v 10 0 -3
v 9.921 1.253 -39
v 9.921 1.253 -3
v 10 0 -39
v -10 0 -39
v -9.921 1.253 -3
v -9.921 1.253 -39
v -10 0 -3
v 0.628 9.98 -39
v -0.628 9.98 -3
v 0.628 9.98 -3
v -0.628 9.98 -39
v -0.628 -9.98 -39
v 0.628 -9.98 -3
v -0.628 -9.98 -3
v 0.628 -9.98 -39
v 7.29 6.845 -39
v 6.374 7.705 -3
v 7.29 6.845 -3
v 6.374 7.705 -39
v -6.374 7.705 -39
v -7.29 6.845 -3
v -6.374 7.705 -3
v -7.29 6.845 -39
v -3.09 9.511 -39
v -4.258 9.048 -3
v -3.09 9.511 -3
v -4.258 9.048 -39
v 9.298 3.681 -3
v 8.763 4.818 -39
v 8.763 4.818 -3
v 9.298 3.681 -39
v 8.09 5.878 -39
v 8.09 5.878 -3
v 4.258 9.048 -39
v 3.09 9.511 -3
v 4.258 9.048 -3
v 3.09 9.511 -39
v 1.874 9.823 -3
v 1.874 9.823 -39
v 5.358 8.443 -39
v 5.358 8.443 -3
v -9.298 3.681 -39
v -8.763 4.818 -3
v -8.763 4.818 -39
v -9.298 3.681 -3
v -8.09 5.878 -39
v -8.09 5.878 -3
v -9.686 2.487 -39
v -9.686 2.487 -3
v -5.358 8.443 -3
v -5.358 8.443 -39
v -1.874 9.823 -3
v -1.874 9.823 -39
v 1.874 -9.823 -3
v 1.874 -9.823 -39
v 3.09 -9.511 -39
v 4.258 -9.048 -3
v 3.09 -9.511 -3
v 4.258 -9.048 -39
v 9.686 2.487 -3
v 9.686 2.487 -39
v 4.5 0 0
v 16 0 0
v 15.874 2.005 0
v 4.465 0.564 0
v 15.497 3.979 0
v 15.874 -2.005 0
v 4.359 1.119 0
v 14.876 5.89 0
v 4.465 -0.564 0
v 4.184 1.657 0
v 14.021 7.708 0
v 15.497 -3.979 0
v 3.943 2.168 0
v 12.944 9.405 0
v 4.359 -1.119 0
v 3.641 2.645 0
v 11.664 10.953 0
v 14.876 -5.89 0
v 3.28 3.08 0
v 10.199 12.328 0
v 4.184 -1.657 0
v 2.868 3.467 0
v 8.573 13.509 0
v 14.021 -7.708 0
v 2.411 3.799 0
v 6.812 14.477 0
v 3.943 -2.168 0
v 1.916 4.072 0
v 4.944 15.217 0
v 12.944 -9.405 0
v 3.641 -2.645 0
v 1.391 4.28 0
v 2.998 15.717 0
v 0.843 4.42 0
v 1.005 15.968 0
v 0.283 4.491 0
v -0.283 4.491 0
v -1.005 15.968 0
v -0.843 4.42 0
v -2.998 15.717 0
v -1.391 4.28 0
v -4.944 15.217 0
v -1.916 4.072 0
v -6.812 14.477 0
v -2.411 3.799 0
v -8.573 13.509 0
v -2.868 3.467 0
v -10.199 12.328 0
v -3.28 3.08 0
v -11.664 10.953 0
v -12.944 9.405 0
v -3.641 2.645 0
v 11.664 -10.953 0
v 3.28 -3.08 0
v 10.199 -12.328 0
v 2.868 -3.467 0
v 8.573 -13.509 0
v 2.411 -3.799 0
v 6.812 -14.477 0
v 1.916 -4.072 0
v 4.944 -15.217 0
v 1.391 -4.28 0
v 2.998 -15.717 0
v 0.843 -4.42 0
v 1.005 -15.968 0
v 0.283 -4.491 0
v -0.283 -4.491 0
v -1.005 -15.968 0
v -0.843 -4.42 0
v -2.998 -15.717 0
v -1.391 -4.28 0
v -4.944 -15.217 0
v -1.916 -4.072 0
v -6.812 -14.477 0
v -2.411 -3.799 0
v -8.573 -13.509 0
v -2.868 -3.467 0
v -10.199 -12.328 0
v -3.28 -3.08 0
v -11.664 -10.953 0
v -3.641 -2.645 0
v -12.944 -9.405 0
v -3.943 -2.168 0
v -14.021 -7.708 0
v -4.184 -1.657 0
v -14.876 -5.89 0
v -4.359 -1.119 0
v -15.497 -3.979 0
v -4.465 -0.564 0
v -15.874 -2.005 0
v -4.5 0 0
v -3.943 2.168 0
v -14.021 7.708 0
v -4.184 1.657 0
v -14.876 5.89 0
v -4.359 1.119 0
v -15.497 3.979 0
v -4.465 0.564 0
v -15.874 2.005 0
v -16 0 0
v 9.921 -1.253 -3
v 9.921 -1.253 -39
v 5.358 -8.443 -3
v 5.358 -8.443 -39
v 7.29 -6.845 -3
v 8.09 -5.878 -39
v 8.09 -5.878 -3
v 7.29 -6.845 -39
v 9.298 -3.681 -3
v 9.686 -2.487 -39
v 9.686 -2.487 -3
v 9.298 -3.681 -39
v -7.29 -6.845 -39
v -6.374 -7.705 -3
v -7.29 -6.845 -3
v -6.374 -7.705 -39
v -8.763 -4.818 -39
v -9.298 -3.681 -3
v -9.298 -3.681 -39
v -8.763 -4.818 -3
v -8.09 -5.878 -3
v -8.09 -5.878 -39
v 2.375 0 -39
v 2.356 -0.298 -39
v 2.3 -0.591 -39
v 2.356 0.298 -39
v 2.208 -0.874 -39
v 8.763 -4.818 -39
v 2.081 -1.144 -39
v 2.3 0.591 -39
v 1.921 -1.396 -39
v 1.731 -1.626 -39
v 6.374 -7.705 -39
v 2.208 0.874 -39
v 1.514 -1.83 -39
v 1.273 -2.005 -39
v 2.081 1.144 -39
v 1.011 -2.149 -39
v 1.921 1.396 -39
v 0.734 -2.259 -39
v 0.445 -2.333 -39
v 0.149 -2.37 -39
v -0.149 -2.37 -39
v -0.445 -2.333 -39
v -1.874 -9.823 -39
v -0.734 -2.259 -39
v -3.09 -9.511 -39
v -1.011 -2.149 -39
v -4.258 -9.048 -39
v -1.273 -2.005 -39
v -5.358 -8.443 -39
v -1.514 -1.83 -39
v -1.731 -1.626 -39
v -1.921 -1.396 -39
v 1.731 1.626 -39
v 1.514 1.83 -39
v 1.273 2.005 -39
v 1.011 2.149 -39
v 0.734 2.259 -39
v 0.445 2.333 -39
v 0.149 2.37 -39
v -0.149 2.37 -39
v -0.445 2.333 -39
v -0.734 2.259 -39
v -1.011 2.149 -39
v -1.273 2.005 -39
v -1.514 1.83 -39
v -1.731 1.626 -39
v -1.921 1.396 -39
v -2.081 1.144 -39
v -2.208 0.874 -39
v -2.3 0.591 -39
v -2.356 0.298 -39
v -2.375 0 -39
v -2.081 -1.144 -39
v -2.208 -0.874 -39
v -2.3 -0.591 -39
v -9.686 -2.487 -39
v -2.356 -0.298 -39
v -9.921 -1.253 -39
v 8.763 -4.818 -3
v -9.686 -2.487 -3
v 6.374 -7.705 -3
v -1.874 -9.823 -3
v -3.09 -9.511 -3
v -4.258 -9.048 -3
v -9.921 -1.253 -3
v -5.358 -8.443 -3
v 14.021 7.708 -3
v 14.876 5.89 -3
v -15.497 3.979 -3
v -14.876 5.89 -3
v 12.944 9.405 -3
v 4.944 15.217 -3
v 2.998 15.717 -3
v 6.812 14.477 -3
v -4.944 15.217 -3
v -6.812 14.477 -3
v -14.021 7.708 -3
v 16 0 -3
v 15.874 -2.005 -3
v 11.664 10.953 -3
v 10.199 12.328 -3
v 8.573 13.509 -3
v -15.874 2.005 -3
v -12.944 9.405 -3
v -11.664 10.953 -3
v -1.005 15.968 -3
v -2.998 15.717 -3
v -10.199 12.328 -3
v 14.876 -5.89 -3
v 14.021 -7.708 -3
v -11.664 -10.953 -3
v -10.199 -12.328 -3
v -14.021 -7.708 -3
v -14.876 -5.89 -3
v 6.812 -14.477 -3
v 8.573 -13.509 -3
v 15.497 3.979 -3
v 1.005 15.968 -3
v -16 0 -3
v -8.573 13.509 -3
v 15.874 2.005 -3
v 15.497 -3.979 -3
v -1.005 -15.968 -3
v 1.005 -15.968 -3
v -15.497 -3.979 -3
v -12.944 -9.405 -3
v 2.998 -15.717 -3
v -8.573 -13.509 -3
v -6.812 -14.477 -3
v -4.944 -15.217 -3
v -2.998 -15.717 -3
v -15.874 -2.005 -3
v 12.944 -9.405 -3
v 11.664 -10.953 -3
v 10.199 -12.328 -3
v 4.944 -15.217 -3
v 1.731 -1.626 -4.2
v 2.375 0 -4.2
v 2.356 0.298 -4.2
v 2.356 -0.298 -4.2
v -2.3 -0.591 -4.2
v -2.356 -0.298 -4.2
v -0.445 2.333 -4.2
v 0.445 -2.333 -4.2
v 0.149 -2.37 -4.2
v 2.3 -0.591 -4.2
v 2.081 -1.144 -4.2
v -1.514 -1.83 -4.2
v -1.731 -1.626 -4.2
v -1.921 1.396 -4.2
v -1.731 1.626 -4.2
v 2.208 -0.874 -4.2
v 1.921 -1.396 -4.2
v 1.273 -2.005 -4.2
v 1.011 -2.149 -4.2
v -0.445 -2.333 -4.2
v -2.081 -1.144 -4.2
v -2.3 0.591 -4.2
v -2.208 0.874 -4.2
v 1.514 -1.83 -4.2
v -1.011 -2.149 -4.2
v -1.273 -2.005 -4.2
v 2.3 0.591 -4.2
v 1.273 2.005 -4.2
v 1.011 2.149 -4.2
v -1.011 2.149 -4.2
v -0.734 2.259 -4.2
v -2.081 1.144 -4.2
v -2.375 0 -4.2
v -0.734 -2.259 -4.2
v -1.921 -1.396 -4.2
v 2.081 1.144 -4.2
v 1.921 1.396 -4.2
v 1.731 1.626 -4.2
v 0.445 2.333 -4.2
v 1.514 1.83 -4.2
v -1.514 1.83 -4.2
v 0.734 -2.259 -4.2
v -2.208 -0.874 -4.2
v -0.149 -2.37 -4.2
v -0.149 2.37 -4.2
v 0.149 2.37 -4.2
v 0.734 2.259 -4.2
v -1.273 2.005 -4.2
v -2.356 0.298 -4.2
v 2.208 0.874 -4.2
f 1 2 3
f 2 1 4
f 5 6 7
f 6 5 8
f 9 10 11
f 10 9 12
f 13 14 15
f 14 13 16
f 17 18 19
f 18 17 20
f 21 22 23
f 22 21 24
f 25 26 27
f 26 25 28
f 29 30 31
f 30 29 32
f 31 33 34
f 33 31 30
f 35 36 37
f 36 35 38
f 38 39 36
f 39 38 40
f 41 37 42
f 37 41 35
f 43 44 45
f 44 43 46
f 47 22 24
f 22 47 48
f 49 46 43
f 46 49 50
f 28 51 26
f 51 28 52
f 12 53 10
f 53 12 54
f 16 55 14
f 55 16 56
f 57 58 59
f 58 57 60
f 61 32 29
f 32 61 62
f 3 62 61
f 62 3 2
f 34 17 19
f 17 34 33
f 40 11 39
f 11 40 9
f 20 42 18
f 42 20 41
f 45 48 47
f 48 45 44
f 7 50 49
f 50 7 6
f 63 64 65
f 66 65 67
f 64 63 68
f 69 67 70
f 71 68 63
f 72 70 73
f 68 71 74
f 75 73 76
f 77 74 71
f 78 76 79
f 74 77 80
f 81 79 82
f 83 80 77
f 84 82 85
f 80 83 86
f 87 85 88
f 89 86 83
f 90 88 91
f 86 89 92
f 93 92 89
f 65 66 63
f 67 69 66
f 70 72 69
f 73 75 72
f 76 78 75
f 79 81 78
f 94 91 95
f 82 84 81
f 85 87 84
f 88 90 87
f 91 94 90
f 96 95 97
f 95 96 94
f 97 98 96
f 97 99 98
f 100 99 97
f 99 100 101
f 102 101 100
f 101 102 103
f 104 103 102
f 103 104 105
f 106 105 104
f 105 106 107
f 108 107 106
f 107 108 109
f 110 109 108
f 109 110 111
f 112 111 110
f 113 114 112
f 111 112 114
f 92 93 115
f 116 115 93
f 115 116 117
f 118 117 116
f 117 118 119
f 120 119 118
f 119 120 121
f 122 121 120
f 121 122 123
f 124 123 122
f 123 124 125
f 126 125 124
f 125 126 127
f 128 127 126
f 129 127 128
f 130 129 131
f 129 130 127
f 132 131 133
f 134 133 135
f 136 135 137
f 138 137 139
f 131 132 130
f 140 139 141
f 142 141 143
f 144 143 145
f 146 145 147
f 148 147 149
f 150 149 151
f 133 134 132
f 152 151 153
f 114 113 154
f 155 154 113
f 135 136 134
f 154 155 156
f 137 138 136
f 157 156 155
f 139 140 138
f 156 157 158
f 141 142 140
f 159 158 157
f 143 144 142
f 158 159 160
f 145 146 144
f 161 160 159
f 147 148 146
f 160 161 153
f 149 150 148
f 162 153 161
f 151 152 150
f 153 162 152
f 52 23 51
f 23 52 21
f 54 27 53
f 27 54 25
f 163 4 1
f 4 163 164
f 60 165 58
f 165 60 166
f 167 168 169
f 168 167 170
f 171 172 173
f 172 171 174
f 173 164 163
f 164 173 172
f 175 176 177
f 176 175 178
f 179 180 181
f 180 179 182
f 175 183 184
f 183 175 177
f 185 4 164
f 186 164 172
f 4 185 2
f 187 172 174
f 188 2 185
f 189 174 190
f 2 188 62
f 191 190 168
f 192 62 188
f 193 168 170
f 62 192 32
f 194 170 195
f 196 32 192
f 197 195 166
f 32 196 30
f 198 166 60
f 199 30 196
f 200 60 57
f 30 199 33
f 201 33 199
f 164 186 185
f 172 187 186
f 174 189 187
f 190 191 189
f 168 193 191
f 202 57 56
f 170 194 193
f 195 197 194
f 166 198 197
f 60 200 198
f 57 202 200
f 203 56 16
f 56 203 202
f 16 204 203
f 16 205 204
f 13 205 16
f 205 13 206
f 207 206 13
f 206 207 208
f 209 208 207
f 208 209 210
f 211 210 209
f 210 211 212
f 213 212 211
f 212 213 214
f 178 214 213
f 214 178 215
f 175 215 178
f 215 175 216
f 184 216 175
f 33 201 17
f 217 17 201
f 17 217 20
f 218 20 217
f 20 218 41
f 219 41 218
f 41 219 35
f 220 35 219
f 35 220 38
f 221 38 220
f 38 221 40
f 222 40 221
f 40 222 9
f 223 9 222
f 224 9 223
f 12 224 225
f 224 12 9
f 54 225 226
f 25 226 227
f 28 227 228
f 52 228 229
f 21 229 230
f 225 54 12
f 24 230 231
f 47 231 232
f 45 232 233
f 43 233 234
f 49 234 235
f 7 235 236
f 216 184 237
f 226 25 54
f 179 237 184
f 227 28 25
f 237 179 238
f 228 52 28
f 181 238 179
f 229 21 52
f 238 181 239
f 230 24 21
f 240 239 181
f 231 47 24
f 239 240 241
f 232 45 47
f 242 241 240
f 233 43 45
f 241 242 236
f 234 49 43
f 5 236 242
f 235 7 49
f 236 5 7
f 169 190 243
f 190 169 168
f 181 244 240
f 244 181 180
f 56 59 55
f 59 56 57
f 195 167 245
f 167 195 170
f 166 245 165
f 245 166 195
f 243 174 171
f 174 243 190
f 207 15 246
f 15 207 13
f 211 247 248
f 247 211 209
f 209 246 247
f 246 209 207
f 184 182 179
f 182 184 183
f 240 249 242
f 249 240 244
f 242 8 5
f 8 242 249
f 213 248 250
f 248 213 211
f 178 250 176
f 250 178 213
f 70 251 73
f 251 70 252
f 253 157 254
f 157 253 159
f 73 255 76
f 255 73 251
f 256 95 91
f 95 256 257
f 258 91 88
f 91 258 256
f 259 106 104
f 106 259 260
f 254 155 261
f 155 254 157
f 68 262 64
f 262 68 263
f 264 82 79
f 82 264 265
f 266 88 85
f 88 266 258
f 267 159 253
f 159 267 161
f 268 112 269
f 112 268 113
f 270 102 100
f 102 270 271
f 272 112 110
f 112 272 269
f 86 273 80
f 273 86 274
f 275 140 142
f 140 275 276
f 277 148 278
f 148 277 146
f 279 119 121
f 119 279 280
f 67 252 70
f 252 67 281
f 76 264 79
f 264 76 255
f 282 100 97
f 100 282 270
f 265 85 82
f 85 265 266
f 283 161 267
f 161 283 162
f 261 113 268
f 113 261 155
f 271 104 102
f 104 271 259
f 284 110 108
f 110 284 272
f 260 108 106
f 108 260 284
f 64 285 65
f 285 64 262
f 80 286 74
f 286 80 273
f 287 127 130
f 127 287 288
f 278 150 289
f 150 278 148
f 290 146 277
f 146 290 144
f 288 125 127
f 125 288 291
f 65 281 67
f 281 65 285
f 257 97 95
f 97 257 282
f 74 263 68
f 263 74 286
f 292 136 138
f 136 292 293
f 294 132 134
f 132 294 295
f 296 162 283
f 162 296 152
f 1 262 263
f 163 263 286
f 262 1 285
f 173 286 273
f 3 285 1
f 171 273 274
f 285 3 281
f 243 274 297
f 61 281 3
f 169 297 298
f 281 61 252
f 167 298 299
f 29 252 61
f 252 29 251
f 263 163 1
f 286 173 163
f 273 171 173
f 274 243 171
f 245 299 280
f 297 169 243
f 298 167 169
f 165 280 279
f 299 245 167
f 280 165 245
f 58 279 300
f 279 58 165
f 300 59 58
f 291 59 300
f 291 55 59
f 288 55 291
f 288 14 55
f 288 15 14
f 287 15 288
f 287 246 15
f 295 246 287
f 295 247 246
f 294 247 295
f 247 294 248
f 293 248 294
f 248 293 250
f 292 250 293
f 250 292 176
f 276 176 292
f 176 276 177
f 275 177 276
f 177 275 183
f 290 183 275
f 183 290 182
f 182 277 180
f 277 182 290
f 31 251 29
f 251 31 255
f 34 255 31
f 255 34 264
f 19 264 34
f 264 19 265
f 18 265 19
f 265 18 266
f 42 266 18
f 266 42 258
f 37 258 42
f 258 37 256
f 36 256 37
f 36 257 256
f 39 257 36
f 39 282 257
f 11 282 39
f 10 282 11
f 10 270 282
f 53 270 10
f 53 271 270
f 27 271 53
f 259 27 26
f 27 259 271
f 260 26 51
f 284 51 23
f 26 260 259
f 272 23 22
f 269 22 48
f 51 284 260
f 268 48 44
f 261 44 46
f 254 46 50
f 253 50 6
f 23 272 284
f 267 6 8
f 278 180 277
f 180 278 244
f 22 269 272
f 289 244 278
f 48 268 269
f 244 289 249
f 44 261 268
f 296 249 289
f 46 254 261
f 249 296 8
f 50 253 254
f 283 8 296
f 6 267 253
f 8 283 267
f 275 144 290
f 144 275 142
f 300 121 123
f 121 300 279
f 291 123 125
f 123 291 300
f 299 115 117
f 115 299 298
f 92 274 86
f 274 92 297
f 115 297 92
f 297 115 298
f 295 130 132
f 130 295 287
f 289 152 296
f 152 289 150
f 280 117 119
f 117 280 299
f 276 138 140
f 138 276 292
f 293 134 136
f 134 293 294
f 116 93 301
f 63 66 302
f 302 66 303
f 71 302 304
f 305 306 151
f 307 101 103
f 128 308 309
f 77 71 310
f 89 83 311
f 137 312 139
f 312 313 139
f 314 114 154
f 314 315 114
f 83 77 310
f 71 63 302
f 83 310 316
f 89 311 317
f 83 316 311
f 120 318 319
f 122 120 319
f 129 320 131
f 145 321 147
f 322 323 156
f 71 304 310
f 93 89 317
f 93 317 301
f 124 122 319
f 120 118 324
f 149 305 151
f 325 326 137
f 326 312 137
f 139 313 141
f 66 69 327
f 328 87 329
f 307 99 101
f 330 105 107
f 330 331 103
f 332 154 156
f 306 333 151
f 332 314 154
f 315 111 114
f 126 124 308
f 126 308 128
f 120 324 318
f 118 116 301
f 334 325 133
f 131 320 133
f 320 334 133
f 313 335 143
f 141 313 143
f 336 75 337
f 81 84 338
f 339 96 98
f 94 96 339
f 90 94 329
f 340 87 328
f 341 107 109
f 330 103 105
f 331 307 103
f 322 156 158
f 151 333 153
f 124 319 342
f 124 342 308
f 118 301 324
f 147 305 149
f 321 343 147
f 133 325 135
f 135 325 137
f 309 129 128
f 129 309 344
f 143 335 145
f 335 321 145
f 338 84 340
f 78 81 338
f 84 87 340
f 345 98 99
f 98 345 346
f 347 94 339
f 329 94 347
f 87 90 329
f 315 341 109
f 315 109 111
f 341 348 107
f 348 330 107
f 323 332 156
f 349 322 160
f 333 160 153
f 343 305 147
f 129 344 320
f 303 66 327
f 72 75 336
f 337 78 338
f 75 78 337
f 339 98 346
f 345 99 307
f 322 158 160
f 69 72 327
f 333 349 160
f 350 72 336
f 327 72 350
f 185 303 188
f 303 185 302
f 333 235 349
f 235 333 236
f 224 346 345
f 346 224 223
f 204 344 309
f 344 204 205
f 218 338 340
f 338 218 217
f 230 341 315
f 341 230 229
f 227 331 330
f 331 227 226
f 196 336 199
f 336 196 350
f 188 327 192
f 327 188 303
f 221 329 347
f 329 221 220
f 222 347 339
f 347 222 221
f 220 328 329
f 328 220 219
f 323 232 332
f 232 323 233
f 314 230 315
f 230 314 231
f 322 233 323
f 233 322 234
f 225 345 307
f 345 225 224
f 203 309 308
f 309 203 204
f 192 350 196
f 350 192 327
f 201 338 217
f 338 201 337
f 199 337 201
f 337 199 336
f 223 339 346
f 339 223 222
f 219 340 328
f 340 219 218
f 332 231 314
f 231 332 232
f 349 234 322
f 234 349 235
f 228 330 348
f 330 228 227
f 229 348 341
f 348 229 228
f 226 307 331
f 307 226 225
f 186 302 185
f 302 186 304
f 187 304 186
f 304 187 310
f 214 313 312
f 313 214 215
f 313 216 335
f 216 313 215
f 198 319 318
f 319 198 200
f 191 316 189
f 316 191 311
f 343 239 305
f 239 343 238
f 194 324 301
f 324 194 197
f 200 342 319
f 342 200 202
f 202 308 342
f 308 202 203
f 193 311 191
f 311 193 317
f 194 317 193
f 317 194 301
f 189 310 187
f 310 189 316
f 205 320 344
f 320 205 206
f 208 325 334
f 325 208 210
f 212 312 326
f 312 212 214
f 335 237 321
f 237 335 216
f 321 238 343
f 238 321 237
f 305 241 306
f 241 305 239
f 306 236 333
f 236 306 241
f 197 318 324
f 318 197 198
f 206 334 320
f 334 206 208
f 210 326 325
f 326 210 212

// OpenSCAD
$fn = 50;


difference() {
	union() {
		translate(v = [0, 0, -39.0000000000]) {
			cylinder(h = 39, r = 10.0000000000);
		}
		translate(v = [0, 0, -3.0000000000]) {
			cylinder(h = 3, r = 16.0000000000);
		}
	}
	union() {
		translate(v = [0, 0, 0]) {
			rotate(a = [0, 0, 0]) {
				difference() {
					union() {
						#translate(v = [0, 0, -39.0000000000]) {
							cylinder(h = 39, r = 2.2500000000);
						}
						#translate(v = [0, 0, -4.2000000000]) {
							cylinder(h = 4.2000000000, r = 10.0000000000, r1 = 2.3750000000, r2 = 4.5000000000);
						}
						#translate(v = [0, 0, -39.0000000000]) {
							cylinder(h = 39, r = 2.3750000000);
						}
						#translate(v = [0, 0, -39.0000000000]) {
							cylinder(h = 39, r = 2.2500000000);
						}
					}
					union();
				}
			}
		}
	}
}
